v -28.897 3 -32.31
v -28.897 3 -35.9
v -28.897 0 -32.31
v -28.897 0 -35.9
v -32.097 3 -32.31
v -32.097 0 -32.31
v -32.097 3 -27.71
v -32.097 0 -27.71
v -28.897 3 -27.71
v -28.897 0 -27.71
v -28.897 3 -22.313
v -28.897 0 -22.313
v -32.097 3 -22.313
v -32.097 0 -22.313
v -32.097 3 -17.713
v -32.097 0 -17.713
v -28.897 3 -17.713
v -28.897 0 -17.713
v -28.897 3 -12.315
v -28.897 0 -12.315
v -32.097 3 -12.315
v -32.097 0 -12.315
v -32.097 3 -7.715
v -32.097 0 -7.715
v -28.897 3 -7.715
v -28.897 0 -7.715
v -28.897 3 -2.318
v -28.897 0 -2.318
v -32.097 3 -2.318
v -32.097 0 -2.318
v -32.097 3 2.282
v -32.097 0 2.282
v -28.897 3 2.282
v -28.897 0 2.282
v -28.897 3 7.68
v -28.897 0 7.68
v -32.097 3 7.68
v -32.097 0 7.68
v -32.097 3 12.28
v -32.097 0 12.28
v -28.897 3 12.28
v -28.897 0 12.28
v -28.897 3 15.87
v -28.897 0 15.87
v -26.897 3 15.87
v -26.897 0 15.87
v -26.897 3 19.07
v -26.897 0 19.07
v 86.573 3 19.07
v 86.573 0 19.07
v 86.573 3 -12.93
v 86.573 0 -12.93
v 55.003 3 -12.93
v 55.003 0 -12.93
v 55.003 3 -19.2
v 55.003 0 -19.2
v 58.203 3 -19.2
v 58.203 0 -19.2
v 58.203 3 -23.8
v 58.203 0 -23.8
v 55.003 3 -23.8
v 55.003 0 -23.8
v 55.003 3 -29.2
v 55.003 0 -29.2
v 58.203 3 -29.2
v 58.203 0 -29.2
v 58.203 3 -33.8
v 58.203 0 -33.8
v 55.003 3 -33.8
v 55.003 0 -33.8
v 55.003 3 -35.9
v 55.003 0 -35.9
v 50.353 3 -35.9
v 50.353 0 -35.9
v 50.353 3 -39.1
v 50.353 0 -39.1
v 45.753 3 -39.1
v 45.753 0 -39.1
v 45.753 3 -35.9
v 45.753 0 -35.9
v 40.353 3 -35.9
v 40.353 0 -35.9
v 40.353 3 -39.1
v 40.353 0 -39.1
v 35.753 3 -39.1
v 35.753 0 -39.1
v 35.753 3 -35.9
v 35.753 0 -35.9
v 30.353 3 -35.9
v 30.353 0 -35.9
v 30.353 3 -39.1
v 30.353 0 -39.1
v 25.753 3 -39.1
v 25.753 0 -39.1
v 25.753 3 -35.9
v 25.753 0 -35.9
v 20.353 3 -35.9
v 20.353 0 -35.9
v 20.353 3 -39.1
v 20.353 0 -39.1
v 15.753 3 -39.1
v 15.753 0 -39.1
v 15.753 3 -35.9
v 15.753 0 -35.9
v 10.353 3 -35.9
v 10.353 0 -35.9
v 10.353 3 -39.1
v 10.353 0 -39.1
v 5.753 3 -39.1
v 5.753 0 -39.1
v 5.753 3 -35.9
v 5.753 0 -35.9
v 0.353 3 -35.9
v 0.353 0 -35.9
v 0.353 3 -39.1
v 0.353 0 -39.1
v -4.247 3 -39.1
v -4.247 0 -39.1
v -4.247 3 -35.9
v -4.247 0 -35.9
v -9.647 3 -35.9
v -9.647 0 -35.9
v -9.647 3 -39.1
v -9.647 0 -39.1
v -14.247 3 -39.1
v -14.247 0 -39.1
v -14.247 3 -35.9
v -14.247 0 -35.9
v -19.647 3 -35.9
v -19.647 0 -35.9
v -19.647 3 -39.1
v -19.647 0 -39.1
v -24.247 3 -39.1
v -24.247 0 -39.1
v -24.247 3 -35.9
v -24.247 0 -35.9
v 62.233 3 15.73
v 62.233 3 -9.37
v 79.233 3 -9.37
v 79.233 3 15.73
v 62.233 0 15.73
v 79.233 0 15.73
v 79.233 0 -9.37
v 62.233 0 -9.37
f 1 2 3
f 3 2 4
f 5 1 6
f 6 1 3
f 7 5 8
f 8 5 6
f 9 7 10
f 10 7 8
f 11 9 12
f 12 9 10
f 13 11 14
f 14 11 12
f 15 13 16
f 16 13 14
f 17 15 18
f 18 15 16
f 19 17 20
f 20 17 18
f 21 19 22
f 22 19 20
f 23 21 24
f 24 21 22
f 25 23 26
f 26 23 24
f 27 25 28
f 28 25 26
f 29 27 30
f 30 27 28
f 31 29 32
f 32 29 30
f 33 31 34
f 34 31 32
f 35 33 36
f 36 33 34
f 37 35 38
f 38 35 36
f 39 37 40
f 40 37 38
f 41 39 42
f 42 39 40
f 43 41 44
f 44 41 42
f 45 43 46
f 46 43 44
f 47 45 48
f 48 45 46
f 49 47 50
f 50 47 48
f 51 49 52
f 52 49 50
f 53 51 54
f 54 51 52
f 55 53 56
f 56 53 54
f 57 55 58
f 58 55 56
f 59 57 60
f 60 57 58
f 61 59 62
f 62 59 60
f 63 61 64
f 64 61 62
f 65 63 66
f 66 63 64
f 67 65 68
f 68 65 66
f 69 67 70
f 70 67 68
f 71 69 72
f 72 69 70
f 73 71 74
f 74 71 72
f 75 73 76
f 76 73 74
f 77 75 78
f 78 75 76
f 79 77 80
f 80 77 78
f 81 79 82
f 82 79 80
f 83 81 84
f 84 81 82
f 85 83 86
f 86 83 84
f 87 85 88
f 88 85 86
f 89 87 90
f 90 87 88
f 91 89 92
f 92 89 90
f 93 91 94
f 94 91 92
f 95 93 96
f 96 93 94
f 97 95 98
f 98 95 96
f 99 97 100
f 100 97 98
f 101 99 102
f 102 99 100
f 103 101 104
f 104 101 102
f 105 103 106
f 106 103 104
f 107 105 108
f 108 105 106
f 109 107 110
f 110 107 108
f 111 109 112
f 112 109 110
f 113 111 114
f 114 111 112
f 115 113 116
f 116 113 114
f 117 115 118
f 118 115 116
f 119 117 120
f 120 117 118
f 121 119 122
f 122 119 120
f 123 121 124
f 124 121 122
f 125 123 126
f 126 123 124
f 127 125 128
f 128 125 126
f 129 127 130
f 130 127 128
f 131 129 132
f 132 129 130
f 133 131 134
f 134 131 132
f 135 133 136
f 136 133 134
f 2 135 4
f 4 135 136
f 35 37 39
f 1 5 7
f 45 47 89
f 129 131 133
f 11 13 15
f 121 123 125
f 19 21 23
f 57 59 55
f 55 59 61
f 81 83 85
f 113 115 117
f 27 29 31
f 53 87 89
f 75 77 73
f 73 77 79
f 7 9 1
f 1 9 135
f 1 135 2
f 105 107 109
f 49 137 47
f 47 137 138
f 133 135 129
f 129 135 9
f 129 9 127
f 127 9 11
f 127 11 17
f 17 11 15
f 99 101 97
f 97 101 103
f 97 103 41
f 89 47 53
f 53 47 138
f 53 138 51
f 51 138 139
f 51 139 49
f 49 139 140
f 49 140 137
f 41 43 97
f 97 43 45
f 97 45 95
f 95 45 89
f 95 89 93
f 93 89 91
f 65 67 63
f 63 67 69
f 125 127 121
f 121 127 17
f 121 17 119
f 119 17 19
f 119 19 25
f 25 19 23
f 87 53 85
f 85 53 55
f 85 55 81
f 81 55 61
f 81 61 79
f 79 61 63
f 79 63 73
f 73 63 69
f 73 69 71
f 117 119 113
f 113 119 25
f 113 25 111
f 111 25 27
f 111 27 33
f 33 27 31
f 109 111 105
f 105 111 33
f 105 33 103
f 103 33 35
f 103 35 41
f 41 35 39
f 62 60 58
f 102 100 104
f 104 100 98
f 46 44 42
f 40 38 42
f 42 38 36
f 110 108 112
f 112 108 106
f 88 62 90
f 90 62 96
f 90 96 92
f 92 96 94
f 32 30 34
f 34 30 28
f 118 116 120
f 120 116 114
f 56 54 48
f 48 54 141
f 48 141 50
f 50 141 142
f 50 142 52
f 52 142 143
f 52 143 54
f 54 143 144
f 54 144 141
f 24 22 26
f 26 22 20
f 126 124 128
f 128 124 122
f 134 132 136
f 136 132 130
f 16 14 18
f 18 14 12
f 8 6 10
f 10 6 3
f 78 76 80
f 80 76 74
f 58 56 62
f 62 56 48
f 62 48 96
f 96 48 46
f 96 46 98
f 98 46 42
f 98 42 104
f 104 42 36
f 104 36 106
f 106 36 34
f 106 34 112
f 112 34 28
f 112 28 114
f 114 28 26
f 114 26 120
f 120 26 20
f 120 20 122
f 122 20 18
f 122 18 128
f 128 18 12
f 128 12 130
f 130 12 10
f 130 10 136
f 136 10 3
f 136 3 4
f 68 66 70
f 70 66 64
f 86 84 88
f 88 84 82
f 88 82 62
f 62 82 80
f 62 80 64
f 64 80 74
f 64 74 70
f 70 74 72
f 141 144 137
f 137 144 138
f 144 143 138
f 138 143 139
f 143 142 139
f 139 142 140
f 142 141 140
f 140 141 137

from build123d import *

# Parameters (mm, degrees)
BOSS_EXTRUDE3_DEPTH = 3
SKETCH2_W           = 17
SKETCH2_H           = 25.1
CUT_EXTRUDE1_DEPTH  = 3


with BuildPart() as part:
    # Sketch1 → Boss-Extrude3 (new body)
    with BuildSketch(Plane(origin=(0, 0, 0), x_dir=(1, 0, 0), z_dir=(0, 1, 0))):
        Polygon((-28.897216547, -2.282245917), (-28.897216547, -7.679745917), (-32.097216547, -7.679745917), (-32.097216547, -12.279745917), (-28.897216547, -12.279745917), (-28.897216547, -15.869745917), (-26.897216547, -15.869745917), (-26.897216547, -19.069745917), (55.002783453, -19.069745917), (86.572783453, -19.069745917), (86.572783453, 12.930254083), (55.002783453, 12.930254083), (55.002783453, 19.200254083), (58.202783453, 19.200254083), (58.202783453, 23.800254083), (55.002783453, 23.800254083), (55.002783453, 29.200254083), (58.202783453, 29.200254083), (58.202783453, 33.800254083), (55.002783453, 33.800254083), (55.002783453, 35.900254083), (50.352783453, 35.900254083), (50.352783453, 39.100254083), (45.752783453, 39.100254083), (45.752783453, 35.900254083), (40.352783453, 35.900254083), (40.352783453, 39.100254083), (35.752783453, 39.100254083), (35.752783453, 35.900254083), (30.352783453, 35.900254083), (30.352783453, 39.100254083), (25.752783453, 39.100254083), (25.752783453, 35.900254083), (20.352783453, 35.900254083), (20.352783453, 39.100254083), (15.752783453, 39.100254083), (15.752783453, 35.900254083), (10.352783453, 35.900254083), (10.352783453, 39.100254083), (5.752783453, 39.100254083), (5.752783453, 35.900254083), (0.352783453, 35.900254083), (0.352783453, 39.100254083), (-4.247216547, 39.100254083), (-4.247216547, 35.900254083), (-9.647216547, 35.900254083), (-9.647216547, 39.100254083), (-14.247216547, 39.100254083), (-14.247216547, 35.900254083), (-19.647216547, 35.900254083), (-19.647216547, 39.100254083), (-24.247216547, 39.100254083), (-24.247216547, 35.900254083), (-28.897216547, 35.900254083), (-28.897216547, 32.310254083), (-32.097216547, 32.310254083), (-32.097216547, 27.710254083), (-28.897216547, 27.710254083), (-28.897216547, 22.312754083), (-32.097216547, 22.312754083), (-32.097216547, 17.712754083), (-28.897216547, 17.712754083), (-28.897216547, 12.315254083), (-32.097216547, 12.315254083), (-32.097216547, 7.715254083), (-28.897216547, 7.715254083), (-28.897216547, 2.317754083), (-32.097216547, 2.317754083), (-32.097216547, -2.282245917), align=None)
    extrude(amount=BOSS_EXTRUDE3_DEPTH)

    # Sketch2 → Cut-Extrude1 (cut)
    with BuildSketch(Plane(origin=(0, 3, 0), x_dir=(1, 0, 0), z_dir=(0, 1, 0))):
        with Locations((70.732783453, -3.179745917)):
            Rectangle(SKETCH2_W, SKETCH2_H)
    extrude(amount=-CUT_EXTRUDE1_DEPTH, mode=Mode.SUBTRACT)


solid = part.part
